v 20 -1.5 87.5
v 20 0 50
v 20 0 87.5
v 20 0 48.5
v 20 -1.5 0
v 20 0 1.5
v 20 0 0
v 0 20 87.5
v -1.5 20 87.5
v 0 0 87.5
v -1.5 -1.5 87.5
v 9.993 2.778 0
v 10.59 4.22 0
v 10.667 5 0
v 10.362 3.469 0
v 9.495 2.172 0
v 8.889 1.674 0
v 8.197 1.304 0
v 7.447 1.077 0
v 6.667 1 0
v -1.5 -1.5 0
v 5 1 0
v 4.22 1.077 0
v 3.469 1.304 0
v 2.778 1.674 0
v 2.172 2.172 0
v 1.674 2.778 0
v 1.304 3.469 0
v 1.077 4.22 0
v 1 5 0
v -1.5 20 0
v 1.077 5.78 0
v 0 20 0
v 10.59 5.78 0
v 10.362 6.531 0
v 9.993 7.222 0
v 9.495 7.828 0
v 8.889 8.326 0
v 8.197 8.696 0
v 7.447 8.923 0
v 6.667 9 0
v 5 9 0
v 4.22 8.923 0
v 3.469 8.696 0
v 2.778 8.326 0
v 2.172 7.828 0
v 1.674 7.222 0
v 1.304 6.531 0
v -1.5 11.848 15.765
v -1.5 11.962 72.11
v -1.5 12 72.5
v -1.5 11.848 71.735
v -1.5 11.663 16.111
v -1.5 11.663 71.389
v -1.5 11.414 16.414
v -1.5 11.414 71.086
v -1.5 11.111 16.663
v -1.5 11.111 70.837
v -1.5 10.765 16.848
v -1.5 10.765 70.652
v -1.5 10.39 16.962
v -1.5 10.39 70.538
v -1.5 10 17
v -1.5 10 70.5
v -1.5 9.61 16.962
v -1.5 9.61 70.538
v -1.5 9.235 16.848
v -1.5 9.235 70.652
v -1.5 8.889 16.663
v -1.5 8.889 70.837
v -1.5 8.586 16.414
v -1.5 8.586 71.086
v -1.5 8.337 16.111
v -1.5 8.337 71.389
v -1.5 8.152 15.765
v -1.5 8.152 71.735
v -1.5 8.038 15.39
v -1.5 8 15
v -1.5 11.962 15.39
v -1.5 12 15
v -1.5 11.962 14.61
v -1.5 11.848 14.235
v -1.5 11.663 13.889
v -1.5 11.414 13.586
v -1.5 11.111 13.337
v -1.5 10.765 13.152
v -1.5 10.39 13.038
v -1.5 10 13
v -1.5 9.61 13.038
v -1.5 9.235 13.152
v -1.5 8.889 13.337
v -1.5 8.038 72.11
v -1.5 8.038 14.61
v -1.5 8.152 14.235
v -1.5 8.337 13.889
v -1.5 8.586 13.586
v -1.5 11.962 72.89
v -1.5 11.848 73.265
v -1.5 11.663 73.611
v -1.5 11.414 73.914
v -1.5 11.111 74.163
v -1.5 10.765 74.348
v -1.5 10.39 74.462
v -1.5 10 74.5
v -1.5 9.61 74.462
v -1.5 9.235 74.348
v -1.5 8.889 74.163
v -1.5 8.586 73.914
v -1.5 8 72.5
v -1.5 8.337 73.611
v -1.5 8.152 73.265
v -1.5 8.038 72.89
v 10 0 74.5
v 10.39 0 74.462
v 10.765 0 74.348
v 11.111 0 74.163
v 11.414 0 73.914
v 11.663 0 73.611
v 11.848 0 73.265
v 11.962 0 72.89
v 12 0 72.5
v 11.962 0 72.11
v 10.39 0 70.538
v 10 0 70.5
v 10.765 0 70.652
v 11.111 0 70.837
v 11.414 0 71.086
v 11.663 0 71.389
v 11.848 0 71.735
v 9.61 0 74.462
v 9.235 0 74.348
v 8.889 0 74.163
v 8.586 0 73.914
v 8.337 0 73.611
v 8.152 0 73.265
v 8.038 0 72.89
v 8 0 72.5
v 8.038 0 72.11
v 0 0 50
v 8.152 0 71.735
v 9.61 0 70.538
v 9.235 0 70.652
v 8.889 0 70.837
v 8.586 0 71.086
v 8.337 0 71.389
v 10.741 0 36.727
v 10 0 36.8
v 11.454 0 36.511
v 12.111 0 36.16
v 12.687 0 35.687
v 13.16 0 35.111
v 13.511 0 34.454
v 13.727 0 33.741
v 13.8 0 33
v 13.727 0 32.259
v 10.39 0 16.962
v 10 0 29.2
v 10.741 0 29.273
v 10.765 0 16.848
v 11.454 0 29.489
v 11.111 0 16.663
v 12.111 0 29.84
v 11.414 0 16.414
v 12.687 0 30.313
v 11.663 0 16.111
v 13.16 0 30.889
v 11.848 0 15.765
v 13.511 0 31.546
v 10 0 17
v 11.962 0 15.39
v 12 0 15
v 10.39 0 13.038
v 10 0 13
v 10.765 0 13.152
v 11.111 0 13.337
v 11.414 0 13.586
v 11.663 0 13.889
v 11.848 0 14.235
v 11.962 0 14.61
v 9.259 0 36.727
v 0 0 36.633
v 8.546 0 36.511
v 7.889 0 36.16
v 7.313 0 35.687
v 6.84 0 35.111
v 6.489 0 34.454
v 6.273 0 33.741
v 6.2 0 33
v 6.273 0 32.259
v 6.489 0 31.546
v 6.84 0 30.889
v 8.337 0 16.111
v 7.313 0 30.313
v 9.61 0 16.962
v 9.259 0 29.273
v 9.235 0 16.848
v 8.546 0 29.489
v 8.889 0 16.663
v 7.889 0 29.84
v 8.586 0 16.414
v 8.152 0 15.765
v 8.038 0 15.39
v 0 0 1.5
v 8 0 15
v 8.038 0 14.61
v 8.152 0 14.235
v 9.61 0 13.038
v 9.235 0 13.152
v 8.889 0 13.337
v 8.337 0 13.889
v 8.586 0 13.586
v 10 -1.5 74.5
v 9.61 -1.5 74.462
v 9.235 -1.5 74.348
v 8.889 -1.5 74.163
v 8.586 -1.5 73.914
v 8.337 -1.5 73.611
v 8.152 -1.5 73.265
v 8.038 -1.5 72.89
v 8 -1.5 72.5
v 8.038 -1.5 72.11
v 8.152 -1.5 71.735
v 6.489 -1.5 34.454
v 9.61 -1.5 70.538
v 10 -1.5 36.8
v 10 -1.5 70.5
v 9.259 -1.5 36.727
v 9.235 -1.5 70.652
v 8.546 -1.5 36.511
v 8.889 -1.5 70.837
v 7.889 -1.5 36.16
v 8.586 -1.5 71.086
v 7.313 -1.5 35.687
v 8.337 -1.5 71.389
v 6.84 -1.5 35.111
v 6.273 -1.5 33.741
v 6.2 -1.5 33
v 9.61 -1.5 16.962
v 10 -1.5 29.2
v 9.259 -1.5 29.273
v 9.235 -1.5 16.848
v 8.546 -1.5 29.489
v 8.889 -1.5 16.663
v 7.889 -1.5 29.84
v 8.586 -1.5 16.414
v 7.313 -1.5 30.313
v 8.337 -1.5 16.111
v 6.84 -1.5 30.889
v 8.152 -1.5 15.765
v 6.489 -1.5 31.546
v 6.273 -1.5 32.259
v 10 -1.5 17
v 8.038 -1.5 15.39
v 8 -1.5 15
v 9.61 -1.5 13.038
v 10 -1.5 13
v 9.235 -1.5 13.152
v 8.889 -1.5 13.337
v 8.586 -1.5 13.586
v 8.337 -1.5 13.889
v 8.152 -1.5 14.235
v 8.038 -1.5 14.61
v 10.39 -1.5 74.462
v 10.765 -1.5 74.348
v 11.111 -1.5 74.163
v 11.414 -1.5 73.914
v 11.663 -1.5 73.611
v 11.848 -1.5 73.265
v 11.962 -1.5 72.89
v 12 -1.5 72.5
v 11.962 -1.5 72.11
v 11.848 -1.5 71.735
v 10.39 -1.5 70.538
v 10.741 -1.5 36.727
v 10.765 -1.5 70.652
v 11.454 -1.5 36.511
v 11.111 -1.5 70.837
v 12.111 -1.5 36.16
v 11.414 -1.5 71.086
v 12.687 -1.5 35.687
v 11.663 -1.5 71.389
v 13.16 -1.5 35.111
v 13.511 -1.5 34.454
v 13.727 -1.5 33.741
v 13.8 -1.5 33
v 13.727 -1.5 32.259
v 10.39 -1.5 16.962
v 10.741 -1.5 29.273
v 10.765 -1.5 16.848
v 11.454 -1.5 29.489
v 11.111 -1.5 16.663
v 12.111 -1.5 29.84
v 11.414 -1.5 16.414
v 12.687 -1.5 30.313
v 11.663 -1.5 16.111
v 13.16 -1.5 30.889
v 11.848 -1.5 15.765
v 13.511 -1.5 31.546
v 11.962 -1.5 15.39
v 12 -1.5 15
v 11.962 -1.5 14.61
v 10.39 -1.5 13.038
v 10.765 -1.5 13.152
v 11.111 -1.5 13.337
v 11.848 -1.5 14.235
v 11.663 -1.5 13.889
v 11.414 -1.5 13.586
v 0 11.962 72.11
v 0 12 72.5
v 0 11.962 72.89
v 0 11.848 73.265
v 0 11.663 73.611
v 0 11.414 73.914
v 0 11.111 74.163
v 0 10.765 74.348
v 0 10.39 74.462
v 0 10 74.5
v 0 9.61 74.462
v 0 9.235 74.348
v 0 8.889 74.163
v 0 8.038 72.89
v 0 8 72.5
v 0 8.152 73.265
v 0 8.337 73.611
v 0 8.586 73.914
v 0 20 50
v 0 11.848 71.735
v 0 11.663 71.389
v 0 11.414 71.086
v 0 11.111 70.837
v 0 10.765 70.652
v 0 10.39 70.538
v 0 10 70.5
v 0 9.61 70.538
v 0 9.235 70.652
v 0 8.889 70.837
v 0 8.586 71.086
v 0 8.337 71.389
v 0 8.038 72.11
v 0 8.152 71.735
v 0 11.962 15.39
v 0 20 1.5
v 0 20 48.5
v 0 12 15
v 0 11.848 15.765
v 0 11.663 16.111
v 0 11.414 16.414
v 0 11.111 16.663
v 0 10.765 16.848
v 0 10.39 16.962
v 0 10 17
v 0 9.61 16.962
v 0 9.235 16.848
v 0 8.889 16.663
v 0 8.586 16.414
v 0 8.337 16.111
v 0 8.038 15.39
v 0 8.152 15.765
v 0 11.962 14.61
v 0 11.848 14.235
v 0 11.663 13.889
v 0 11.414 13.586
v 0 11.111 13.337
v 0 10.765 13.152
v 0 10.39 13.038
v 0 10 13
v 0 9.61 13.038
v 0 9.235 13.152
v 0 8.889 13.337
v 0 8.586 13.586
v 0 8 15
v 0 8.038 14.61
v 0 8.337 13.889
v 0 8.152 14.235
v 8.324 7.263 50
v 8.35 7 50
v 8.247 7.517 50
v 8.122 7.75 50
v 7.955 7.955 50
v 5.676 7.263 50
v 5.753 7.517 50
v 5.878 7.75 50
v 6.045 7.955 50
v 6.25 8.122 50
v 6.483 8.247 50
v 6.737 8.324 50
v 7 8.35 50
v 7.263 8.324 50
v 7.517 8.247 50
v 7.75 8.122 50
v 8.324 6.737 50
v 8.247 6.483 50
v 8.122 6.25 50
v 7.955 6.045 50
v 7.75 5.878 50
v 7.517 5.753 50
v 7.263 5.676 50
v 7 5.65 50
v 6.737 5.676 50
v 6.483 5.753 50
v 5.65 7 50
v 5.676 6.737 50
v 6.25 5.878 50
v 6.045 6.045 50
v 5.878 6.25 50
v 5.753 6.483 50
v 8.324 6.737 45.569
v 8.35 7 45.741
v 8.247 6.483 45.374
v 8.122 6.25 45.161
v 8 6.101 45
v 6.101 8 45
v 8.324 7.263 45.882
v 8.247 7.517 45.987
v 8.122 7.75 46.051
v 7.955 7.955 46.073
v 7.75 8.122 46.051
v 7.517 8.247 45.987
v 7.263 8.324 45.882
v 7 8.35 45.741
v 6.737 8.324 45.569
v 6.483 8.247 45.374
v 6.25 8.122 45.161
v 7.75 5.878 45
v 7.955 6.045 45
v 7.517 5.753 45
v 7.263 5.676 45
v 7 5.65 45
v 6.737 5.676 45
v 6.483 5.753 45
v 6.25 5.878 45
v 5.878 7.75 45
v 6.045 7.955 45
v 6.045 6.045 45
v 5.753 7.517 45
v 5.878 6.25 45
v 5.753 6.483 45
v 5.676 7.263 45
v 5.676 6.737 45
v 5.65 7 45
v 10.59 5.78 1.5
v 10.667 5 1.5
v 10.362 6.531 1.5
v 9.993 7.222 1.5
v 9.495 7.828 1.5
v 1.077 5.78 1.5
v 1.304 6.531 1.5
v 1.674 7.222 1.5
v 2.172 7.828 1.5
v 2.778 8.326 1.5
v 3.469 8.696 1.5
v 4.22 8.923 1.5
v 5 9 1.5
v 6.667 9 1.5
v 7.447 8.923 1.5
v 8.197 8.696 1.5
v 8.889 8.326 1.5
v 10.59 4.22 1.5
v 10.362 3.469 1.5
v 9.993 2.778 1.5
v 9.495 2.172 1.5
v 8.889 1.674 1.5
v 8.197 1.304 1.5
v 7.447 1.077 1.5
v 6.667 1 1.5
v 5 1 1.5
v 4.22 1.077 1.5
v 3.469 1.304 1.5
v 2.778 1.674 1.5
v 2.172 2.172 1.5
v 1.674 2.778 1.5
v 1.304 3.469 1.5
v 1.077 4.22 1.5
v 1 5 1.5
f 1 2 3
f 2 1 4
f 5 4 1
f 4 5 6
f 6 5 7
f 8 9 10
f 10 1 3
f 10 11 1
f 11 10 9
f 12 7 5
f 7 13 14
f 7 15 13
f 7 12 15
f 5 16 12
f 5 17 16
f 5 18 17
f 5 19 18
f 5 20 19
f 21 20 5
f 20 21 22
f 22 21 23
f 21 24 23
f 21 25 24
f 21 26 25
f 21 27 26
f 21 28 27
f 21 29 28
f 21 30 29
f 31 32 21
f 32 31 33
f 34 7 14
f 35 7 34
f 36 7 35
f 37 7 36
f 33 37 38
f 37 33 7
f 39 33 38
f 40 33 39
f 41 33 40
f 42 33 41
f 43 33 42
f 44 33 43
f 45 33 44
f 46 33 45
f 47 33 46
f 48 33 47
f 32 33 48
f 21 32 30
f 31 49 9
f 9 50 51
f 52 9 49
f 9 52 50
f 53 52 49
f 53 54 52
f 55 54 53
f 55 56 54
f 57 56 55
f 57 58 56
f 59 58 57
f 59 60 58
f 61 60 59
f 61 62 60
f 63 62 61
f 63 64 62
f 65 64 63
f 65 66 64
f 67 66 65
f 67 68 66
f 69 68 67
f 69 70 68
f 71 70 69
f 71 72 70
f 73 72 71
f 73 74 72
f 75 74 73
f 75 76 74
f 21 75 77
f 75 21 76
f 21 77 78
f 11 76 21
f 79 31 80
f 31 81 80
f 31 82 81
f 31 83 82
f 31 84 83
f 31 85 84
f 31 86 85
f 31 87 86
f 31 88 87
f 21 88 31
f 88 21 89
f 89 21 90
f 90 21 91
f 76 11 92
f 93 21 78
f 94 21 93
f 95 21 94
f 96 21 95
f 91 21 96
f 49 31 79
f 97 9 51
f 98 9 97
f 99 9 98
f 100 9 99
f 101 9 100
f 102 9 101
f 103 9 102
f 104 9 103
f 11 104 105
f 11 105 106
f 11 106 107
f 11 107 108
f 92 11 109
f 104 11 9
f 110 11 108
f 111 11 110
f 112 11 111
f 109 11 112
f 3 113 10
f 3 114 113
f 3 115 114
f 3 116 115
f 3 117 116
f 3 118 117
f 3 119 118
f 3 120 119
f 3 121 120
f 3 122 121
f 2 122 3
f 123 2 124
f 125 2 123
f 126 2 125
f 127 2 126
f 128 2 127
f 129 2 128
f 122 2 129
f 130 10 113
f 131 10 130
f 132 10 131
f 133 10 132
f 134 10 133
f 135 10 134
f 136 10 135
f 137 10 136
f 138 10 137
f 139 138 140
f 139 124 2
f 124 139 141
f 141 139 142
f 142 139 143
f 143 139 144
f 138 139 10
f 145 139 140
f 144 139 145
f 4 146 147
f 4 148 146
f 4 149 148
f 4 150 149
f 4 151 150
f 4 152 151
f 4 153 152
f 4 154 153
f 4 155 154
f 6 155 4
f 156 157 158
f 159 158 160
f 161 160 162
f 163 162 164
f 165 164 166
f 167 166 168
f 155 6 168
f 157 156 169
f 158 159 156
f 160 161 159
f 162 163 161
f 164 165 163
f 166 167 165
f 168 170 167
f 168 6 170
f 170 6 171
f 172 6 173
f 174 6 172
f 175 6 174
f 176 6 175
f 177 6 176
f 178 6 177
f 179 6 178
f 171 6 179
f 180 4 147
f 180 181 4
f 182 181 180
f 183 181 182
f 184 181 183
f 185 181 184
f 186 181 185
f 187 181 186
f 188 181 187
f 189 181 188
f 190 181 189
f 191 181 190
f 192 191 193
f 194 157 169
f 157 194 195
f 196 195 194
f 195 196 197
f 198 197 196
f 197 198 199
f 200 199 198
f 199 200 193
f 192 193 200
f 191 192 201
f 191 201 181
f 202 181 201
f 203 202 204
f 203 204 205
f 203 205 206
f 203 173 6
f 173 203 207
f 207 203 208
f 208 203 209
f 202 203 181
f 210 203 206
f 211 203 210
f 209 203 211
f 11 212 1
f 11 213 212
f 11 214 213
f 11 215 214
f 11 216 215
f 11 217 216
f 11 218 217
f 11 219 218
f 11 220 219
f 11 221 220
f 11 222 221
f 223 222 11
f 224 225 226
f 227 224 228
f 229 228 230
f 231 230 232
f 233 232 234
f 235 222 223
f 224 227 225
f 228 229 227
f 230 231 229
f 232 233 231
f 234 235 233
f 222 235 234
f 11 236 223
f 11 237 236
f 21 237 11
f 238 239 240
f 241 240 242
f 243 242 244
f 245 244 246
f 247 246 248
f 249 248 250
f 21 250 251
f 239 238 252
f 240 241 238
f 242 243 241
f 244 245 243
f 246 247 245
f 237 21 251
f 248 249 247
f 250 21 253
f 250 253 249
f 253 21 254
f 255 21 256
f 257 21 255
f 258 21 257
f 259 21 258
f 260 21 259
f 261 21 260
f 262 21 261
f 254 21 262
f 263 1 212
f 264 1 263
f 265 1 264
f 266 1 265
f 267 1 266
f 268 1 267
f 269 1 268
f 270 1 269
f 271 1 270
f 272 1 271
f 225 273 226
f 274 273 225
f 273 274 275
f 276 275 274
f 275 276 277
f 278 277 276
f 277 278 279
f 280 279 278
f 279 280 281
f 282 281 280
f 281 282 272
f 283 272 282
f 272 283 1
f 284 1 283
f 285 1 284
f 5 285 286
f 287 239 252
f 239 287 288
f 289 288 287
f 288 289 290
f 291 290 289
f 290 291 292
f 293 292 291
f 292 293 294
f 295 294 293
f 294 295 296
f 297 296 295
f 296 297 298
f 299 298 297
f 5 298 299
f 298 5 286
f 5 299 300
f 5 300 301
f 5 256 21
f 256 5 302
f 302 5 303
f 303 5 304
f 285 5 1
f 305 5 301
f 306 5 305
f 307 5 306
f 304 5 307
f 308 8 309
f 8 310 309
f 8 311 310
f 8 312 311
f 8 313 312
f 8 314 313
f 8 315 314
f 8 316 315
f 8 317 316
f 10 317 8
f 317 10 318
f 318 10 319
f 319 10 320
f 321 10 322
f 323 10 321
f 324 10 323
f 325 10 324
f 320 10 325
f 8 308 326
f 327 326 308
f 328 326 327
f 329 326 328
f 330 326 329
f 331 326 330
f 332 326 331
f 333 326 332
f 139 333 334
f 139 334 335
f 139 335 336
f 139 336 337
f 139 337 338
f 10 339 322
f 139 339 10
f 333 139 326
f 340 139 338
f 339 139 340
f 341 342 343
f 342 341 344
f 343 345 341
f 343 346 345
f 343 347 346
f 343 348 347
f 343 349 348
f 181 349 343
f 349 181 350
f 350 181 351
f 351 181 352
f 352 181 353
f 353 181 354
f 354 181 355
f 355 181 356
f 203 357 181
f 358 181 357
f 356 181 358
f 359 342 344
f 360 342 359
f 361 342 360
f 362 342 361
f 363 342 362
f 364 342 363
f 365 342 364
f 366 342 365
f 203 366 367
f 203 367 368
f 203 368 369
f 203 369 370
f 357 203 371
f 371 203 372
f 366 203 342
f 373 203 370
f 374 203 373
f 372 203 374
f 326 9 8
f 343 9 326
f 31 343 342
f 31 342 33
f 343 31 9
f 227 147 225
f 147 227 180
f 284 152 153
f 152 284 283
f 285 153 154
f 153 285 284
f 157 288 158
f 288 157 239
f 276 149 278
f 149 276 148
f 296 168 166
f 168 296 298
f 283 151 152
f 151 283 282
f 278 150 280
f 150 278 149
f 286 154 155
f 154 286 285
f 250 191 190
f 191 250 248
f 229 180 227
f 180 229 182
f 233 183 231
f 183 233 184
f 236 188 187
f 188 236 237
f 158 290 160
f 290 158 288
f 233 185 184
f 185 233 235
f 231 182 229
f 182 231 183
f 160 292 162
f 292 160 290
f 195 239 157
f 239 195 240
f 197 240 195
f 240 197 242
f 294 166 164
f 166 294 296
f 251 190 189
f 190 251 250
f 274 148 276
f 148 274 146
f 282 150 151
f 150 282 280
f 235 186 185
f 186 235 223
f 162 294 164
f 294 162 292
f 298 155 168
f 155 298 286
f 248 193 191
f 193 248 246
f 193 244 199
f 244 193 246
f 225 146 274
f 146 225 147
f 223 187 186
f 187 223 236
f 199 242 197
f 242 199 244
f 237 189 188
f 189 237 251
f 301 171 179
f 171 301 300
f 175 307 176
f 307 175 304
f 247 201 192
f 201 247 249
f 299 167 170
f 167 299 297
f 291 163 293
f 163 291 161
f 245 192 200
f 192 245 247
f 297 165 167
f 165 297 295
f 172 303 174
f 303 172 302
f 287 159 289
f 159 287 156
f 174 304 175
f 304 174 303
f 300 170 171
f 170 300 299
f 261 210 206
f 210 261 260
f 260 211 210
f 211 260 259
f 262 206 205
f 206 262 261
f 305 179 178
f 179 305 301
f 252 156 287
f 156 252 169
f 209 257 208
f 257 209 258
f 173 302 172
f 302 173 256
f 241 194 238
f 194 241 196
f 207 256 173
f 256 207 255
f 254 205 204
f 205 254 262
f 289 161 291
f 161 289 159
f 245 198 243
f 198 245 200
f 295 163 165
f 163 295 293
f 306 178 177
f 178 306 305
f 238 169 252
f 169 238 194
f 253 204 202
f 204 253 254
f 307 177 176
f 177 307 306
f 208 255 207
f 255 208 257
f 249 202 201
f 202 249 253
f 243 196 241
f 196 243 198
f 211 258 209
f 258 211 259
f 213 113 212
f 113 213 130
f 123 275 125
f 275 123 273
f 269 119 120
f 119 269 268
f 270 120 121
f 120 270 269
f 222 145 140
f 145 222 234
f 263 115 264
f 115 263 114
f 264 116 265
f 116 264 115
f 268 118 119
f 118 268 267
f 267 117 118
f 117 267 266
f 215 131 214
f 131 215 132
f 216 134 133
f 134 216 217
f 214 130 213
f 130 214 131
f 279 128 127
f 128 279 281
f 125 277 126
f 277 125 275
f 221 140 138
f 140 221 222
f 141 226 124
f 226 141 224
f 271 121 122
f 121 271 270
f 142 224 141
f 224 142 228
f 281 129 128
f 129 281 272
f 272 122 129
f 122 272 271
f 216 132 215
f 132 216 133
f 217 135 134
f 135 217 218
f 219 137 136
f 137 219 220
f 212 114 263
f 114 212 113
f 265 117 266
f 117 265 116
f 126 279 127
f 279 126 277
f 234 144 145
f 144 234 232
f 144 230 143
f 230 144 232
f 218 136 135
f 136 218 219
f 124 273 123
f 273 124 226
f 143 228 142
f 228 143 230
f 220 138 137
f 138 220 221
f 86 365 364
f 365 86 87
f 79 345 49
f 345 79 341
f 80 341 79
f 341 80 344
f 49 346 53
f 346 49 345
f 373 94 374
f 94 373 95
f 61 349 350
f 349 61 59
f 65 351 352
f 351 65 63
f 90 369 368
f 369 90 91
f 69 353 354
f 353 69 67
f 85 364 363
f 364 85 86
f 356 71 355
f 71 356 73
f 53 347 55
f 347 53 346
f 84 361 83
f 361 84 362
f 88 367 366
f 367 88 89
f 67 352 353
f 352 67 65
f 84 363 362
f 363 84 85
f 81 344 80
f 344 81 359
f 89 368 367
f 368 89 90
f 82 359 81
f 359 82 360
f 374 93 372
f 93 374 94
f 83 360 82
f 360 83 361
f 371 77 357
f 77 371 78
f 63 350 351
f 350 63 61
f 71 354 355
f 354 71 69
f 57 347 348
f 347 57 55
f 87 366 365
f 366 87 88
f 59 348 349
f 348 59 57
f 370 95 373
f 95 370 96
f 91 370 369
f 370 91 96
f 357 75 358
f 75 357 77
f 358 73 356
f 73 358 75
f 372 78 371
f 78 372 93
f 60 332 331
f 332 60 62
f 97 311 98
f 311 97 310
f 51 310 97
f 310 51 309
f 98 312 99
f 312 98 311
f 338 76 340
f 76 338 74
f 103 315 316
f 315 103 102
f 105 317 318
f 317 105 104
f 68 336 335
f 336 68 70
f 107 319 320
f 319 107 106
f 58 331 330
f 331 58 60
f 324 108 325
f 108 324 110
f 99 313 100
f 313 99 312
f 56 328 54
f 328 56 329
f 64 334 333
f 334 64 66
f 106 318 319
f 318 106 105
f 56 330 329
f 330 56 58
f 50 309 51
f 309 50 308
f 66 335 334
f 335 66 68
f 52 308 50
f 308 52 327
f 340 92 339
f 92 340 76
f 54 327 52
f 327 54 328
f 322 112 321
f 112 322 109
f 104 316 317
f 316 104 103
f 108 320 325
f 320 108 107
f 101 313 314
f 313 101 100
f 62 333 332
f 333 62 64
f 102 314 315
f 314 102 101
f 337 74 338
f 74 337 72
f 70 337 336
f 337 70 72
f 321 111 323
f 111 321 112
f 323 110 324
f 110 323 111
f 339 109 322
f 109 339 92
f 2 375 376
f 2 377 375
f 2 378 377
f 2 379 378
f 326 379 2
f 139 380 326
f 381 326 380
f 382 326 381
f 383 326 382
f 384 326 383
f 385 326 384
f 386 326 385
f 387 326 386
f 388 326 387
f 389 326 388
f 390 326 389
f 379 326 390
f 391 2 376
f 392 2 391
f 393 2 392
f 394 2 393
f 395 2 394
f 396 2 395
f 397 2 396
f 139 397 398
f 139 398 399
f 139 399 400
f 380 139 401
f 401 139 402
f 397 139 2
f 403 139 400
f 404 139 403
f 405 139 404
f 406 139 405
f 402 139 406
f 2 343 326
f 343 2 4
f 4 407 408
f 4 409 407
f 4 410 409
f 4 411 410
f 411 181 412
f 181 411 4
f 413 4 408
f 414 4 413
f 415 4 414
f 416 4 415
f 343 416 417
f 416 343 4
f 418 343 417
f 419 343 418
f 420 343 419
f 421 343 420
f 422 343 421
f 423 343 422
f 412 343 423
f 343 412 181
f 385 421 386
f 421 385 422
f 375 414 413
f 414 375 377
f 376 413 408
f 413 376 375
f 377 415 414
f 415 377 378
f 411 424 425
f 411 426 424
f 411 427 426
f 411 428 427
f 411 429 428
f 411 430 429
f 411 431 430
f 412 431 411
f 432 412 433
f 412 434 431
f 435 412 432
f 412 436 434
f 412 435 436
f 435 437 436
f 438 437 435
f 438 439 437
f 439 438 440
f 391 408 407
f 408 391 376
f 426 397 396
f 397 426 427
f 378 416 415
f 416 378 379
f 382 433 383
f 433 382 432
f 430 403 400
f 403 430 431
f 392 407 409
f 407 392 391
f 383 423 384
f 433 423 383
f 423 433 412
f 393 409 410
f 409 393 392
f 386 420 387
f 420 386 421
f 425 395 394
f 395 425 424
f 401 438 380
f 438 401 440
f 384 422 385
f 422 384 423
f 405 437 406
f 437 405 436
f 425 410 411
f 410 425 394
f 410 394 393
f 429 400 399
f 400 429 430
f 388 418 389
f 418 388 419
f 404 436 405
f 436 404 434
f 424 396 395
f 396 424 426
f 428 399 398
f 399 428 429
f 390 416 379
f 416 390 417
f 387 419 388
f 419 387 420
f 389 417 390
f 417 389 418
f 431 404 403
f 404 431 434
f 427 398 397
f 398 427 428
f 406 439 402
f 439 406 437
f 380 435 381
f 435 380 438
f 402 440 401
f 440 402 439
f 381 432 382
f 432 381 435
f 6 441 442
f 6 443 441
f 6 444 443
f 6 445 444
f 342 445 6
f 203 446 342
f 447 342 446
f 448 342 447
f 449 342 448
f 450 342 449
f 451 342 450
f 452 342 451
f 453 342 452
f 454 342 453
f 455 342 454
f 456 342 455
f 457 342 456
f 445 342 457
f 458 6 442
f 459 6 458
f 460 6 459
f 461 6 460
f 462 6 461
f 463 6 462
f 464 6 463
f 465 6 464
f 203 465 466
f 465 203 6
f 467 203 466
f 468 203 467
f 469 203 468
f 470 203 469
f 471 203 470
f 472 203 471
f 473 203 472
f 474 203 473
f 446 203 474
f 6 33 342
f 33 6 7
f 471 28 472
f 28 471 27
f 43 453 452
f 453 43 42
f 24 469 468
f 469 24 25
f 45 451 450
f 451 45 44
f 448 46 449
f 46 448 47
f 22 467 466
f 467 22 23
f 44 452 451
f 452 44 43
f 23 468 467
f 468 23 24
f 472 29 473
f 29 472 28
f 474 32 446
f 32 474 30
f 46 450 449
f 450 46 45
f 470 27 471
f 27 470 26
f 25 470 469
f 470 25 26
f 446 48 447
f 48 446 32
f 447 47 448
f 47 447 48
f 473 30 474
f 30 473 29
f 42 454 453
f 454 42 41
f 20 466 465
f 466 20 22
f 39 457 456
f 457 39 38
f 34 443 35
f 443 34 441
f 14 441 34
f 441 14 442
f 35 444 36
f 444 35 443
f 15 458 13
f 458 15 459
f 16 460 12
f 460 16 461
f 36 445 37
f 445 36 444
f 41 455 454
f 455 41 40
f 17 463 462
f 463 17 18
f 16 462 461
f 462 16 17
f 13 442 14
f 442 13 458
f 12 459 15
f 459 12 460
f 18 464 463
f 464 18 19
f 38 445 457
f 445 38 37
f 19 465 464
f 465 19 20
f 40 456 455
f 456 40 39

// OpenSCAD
wall = 1.5;
height = 87.5;
width = 20;
screwhole_diam = 8;
baseplate_screw_diam = 2.7;
powerplug_diam = 7.6;


module corner() {
    translate([-wall,-wall,0]) cube([width+wall,wall,height]);
    rotate([0,0,90]) cube([width,wall,height]);
}

difference() {
    corner();
    klammer_diam=4;
    distance=15;
    translate([width/2,0,33]) rotate([90,0,0]) cylinder(d=powerplug_diam, h=wall, $fn=32);
    translate([width/2,0,distance]) rotate([90,0,0]) cylinder(d=klammer_diam, h=wall, $fn=32);
    translate([width/2,0,height-distance]) rotate([90,0,0]) cylinder(d=klammer_diam, h=wall, $fn=32);
    translate([-wall,width/2,distance]) rotate([90,0,90]) cylinder(d=klammer_diam, h=wall, $fn=32);
    translate([-wall,width/2,height-distance]) rotate([90,0,90]) cylinder(d=klammer_diam, h=wall, $fn=32);
}

difference() {
    linear_extrude(wall) {
        polygon([
            [0,0],
            [width,0],
            [0,width]
        ]);
    }
    min_dist = width/4;
    max_dist = width/3;
    translate([min_dist, min_dist, 0]) cylinder(d=screwhole_diam, h=wall, $fn=32);
    translate([min_dist, min_dist-screwhole_diam/2, 0]) cube([max_dist-min_dist, screwhole_diam, wall]);
    translate([max_dist, min_dist, 0]) cylinder(d=screwhole_diam, h=wall, $fn=32);
    translate([max_dist, min_dist, 0]) cylinder(d=screwhole_diam, h=wall, $fn=32);
}

translate([0,0,50]) difference() {
    translate([0,0,-width]) linear_extrude(width) {
        polygon([
            [0,0],
            [width,0],
            [0,width]
        ]);
    }
    rotate([0,0,-45]) translate([0,width*sqrt(2)/2,-wall]) rotate([40,0,0]) translate([-width*2,-width*4,-width*4]) cube([width*4,width*4,width*4]);
    translate([7,7,-5]) cylinder(d=baseplate_screw_diam, h=5, $fn=32); 
}
